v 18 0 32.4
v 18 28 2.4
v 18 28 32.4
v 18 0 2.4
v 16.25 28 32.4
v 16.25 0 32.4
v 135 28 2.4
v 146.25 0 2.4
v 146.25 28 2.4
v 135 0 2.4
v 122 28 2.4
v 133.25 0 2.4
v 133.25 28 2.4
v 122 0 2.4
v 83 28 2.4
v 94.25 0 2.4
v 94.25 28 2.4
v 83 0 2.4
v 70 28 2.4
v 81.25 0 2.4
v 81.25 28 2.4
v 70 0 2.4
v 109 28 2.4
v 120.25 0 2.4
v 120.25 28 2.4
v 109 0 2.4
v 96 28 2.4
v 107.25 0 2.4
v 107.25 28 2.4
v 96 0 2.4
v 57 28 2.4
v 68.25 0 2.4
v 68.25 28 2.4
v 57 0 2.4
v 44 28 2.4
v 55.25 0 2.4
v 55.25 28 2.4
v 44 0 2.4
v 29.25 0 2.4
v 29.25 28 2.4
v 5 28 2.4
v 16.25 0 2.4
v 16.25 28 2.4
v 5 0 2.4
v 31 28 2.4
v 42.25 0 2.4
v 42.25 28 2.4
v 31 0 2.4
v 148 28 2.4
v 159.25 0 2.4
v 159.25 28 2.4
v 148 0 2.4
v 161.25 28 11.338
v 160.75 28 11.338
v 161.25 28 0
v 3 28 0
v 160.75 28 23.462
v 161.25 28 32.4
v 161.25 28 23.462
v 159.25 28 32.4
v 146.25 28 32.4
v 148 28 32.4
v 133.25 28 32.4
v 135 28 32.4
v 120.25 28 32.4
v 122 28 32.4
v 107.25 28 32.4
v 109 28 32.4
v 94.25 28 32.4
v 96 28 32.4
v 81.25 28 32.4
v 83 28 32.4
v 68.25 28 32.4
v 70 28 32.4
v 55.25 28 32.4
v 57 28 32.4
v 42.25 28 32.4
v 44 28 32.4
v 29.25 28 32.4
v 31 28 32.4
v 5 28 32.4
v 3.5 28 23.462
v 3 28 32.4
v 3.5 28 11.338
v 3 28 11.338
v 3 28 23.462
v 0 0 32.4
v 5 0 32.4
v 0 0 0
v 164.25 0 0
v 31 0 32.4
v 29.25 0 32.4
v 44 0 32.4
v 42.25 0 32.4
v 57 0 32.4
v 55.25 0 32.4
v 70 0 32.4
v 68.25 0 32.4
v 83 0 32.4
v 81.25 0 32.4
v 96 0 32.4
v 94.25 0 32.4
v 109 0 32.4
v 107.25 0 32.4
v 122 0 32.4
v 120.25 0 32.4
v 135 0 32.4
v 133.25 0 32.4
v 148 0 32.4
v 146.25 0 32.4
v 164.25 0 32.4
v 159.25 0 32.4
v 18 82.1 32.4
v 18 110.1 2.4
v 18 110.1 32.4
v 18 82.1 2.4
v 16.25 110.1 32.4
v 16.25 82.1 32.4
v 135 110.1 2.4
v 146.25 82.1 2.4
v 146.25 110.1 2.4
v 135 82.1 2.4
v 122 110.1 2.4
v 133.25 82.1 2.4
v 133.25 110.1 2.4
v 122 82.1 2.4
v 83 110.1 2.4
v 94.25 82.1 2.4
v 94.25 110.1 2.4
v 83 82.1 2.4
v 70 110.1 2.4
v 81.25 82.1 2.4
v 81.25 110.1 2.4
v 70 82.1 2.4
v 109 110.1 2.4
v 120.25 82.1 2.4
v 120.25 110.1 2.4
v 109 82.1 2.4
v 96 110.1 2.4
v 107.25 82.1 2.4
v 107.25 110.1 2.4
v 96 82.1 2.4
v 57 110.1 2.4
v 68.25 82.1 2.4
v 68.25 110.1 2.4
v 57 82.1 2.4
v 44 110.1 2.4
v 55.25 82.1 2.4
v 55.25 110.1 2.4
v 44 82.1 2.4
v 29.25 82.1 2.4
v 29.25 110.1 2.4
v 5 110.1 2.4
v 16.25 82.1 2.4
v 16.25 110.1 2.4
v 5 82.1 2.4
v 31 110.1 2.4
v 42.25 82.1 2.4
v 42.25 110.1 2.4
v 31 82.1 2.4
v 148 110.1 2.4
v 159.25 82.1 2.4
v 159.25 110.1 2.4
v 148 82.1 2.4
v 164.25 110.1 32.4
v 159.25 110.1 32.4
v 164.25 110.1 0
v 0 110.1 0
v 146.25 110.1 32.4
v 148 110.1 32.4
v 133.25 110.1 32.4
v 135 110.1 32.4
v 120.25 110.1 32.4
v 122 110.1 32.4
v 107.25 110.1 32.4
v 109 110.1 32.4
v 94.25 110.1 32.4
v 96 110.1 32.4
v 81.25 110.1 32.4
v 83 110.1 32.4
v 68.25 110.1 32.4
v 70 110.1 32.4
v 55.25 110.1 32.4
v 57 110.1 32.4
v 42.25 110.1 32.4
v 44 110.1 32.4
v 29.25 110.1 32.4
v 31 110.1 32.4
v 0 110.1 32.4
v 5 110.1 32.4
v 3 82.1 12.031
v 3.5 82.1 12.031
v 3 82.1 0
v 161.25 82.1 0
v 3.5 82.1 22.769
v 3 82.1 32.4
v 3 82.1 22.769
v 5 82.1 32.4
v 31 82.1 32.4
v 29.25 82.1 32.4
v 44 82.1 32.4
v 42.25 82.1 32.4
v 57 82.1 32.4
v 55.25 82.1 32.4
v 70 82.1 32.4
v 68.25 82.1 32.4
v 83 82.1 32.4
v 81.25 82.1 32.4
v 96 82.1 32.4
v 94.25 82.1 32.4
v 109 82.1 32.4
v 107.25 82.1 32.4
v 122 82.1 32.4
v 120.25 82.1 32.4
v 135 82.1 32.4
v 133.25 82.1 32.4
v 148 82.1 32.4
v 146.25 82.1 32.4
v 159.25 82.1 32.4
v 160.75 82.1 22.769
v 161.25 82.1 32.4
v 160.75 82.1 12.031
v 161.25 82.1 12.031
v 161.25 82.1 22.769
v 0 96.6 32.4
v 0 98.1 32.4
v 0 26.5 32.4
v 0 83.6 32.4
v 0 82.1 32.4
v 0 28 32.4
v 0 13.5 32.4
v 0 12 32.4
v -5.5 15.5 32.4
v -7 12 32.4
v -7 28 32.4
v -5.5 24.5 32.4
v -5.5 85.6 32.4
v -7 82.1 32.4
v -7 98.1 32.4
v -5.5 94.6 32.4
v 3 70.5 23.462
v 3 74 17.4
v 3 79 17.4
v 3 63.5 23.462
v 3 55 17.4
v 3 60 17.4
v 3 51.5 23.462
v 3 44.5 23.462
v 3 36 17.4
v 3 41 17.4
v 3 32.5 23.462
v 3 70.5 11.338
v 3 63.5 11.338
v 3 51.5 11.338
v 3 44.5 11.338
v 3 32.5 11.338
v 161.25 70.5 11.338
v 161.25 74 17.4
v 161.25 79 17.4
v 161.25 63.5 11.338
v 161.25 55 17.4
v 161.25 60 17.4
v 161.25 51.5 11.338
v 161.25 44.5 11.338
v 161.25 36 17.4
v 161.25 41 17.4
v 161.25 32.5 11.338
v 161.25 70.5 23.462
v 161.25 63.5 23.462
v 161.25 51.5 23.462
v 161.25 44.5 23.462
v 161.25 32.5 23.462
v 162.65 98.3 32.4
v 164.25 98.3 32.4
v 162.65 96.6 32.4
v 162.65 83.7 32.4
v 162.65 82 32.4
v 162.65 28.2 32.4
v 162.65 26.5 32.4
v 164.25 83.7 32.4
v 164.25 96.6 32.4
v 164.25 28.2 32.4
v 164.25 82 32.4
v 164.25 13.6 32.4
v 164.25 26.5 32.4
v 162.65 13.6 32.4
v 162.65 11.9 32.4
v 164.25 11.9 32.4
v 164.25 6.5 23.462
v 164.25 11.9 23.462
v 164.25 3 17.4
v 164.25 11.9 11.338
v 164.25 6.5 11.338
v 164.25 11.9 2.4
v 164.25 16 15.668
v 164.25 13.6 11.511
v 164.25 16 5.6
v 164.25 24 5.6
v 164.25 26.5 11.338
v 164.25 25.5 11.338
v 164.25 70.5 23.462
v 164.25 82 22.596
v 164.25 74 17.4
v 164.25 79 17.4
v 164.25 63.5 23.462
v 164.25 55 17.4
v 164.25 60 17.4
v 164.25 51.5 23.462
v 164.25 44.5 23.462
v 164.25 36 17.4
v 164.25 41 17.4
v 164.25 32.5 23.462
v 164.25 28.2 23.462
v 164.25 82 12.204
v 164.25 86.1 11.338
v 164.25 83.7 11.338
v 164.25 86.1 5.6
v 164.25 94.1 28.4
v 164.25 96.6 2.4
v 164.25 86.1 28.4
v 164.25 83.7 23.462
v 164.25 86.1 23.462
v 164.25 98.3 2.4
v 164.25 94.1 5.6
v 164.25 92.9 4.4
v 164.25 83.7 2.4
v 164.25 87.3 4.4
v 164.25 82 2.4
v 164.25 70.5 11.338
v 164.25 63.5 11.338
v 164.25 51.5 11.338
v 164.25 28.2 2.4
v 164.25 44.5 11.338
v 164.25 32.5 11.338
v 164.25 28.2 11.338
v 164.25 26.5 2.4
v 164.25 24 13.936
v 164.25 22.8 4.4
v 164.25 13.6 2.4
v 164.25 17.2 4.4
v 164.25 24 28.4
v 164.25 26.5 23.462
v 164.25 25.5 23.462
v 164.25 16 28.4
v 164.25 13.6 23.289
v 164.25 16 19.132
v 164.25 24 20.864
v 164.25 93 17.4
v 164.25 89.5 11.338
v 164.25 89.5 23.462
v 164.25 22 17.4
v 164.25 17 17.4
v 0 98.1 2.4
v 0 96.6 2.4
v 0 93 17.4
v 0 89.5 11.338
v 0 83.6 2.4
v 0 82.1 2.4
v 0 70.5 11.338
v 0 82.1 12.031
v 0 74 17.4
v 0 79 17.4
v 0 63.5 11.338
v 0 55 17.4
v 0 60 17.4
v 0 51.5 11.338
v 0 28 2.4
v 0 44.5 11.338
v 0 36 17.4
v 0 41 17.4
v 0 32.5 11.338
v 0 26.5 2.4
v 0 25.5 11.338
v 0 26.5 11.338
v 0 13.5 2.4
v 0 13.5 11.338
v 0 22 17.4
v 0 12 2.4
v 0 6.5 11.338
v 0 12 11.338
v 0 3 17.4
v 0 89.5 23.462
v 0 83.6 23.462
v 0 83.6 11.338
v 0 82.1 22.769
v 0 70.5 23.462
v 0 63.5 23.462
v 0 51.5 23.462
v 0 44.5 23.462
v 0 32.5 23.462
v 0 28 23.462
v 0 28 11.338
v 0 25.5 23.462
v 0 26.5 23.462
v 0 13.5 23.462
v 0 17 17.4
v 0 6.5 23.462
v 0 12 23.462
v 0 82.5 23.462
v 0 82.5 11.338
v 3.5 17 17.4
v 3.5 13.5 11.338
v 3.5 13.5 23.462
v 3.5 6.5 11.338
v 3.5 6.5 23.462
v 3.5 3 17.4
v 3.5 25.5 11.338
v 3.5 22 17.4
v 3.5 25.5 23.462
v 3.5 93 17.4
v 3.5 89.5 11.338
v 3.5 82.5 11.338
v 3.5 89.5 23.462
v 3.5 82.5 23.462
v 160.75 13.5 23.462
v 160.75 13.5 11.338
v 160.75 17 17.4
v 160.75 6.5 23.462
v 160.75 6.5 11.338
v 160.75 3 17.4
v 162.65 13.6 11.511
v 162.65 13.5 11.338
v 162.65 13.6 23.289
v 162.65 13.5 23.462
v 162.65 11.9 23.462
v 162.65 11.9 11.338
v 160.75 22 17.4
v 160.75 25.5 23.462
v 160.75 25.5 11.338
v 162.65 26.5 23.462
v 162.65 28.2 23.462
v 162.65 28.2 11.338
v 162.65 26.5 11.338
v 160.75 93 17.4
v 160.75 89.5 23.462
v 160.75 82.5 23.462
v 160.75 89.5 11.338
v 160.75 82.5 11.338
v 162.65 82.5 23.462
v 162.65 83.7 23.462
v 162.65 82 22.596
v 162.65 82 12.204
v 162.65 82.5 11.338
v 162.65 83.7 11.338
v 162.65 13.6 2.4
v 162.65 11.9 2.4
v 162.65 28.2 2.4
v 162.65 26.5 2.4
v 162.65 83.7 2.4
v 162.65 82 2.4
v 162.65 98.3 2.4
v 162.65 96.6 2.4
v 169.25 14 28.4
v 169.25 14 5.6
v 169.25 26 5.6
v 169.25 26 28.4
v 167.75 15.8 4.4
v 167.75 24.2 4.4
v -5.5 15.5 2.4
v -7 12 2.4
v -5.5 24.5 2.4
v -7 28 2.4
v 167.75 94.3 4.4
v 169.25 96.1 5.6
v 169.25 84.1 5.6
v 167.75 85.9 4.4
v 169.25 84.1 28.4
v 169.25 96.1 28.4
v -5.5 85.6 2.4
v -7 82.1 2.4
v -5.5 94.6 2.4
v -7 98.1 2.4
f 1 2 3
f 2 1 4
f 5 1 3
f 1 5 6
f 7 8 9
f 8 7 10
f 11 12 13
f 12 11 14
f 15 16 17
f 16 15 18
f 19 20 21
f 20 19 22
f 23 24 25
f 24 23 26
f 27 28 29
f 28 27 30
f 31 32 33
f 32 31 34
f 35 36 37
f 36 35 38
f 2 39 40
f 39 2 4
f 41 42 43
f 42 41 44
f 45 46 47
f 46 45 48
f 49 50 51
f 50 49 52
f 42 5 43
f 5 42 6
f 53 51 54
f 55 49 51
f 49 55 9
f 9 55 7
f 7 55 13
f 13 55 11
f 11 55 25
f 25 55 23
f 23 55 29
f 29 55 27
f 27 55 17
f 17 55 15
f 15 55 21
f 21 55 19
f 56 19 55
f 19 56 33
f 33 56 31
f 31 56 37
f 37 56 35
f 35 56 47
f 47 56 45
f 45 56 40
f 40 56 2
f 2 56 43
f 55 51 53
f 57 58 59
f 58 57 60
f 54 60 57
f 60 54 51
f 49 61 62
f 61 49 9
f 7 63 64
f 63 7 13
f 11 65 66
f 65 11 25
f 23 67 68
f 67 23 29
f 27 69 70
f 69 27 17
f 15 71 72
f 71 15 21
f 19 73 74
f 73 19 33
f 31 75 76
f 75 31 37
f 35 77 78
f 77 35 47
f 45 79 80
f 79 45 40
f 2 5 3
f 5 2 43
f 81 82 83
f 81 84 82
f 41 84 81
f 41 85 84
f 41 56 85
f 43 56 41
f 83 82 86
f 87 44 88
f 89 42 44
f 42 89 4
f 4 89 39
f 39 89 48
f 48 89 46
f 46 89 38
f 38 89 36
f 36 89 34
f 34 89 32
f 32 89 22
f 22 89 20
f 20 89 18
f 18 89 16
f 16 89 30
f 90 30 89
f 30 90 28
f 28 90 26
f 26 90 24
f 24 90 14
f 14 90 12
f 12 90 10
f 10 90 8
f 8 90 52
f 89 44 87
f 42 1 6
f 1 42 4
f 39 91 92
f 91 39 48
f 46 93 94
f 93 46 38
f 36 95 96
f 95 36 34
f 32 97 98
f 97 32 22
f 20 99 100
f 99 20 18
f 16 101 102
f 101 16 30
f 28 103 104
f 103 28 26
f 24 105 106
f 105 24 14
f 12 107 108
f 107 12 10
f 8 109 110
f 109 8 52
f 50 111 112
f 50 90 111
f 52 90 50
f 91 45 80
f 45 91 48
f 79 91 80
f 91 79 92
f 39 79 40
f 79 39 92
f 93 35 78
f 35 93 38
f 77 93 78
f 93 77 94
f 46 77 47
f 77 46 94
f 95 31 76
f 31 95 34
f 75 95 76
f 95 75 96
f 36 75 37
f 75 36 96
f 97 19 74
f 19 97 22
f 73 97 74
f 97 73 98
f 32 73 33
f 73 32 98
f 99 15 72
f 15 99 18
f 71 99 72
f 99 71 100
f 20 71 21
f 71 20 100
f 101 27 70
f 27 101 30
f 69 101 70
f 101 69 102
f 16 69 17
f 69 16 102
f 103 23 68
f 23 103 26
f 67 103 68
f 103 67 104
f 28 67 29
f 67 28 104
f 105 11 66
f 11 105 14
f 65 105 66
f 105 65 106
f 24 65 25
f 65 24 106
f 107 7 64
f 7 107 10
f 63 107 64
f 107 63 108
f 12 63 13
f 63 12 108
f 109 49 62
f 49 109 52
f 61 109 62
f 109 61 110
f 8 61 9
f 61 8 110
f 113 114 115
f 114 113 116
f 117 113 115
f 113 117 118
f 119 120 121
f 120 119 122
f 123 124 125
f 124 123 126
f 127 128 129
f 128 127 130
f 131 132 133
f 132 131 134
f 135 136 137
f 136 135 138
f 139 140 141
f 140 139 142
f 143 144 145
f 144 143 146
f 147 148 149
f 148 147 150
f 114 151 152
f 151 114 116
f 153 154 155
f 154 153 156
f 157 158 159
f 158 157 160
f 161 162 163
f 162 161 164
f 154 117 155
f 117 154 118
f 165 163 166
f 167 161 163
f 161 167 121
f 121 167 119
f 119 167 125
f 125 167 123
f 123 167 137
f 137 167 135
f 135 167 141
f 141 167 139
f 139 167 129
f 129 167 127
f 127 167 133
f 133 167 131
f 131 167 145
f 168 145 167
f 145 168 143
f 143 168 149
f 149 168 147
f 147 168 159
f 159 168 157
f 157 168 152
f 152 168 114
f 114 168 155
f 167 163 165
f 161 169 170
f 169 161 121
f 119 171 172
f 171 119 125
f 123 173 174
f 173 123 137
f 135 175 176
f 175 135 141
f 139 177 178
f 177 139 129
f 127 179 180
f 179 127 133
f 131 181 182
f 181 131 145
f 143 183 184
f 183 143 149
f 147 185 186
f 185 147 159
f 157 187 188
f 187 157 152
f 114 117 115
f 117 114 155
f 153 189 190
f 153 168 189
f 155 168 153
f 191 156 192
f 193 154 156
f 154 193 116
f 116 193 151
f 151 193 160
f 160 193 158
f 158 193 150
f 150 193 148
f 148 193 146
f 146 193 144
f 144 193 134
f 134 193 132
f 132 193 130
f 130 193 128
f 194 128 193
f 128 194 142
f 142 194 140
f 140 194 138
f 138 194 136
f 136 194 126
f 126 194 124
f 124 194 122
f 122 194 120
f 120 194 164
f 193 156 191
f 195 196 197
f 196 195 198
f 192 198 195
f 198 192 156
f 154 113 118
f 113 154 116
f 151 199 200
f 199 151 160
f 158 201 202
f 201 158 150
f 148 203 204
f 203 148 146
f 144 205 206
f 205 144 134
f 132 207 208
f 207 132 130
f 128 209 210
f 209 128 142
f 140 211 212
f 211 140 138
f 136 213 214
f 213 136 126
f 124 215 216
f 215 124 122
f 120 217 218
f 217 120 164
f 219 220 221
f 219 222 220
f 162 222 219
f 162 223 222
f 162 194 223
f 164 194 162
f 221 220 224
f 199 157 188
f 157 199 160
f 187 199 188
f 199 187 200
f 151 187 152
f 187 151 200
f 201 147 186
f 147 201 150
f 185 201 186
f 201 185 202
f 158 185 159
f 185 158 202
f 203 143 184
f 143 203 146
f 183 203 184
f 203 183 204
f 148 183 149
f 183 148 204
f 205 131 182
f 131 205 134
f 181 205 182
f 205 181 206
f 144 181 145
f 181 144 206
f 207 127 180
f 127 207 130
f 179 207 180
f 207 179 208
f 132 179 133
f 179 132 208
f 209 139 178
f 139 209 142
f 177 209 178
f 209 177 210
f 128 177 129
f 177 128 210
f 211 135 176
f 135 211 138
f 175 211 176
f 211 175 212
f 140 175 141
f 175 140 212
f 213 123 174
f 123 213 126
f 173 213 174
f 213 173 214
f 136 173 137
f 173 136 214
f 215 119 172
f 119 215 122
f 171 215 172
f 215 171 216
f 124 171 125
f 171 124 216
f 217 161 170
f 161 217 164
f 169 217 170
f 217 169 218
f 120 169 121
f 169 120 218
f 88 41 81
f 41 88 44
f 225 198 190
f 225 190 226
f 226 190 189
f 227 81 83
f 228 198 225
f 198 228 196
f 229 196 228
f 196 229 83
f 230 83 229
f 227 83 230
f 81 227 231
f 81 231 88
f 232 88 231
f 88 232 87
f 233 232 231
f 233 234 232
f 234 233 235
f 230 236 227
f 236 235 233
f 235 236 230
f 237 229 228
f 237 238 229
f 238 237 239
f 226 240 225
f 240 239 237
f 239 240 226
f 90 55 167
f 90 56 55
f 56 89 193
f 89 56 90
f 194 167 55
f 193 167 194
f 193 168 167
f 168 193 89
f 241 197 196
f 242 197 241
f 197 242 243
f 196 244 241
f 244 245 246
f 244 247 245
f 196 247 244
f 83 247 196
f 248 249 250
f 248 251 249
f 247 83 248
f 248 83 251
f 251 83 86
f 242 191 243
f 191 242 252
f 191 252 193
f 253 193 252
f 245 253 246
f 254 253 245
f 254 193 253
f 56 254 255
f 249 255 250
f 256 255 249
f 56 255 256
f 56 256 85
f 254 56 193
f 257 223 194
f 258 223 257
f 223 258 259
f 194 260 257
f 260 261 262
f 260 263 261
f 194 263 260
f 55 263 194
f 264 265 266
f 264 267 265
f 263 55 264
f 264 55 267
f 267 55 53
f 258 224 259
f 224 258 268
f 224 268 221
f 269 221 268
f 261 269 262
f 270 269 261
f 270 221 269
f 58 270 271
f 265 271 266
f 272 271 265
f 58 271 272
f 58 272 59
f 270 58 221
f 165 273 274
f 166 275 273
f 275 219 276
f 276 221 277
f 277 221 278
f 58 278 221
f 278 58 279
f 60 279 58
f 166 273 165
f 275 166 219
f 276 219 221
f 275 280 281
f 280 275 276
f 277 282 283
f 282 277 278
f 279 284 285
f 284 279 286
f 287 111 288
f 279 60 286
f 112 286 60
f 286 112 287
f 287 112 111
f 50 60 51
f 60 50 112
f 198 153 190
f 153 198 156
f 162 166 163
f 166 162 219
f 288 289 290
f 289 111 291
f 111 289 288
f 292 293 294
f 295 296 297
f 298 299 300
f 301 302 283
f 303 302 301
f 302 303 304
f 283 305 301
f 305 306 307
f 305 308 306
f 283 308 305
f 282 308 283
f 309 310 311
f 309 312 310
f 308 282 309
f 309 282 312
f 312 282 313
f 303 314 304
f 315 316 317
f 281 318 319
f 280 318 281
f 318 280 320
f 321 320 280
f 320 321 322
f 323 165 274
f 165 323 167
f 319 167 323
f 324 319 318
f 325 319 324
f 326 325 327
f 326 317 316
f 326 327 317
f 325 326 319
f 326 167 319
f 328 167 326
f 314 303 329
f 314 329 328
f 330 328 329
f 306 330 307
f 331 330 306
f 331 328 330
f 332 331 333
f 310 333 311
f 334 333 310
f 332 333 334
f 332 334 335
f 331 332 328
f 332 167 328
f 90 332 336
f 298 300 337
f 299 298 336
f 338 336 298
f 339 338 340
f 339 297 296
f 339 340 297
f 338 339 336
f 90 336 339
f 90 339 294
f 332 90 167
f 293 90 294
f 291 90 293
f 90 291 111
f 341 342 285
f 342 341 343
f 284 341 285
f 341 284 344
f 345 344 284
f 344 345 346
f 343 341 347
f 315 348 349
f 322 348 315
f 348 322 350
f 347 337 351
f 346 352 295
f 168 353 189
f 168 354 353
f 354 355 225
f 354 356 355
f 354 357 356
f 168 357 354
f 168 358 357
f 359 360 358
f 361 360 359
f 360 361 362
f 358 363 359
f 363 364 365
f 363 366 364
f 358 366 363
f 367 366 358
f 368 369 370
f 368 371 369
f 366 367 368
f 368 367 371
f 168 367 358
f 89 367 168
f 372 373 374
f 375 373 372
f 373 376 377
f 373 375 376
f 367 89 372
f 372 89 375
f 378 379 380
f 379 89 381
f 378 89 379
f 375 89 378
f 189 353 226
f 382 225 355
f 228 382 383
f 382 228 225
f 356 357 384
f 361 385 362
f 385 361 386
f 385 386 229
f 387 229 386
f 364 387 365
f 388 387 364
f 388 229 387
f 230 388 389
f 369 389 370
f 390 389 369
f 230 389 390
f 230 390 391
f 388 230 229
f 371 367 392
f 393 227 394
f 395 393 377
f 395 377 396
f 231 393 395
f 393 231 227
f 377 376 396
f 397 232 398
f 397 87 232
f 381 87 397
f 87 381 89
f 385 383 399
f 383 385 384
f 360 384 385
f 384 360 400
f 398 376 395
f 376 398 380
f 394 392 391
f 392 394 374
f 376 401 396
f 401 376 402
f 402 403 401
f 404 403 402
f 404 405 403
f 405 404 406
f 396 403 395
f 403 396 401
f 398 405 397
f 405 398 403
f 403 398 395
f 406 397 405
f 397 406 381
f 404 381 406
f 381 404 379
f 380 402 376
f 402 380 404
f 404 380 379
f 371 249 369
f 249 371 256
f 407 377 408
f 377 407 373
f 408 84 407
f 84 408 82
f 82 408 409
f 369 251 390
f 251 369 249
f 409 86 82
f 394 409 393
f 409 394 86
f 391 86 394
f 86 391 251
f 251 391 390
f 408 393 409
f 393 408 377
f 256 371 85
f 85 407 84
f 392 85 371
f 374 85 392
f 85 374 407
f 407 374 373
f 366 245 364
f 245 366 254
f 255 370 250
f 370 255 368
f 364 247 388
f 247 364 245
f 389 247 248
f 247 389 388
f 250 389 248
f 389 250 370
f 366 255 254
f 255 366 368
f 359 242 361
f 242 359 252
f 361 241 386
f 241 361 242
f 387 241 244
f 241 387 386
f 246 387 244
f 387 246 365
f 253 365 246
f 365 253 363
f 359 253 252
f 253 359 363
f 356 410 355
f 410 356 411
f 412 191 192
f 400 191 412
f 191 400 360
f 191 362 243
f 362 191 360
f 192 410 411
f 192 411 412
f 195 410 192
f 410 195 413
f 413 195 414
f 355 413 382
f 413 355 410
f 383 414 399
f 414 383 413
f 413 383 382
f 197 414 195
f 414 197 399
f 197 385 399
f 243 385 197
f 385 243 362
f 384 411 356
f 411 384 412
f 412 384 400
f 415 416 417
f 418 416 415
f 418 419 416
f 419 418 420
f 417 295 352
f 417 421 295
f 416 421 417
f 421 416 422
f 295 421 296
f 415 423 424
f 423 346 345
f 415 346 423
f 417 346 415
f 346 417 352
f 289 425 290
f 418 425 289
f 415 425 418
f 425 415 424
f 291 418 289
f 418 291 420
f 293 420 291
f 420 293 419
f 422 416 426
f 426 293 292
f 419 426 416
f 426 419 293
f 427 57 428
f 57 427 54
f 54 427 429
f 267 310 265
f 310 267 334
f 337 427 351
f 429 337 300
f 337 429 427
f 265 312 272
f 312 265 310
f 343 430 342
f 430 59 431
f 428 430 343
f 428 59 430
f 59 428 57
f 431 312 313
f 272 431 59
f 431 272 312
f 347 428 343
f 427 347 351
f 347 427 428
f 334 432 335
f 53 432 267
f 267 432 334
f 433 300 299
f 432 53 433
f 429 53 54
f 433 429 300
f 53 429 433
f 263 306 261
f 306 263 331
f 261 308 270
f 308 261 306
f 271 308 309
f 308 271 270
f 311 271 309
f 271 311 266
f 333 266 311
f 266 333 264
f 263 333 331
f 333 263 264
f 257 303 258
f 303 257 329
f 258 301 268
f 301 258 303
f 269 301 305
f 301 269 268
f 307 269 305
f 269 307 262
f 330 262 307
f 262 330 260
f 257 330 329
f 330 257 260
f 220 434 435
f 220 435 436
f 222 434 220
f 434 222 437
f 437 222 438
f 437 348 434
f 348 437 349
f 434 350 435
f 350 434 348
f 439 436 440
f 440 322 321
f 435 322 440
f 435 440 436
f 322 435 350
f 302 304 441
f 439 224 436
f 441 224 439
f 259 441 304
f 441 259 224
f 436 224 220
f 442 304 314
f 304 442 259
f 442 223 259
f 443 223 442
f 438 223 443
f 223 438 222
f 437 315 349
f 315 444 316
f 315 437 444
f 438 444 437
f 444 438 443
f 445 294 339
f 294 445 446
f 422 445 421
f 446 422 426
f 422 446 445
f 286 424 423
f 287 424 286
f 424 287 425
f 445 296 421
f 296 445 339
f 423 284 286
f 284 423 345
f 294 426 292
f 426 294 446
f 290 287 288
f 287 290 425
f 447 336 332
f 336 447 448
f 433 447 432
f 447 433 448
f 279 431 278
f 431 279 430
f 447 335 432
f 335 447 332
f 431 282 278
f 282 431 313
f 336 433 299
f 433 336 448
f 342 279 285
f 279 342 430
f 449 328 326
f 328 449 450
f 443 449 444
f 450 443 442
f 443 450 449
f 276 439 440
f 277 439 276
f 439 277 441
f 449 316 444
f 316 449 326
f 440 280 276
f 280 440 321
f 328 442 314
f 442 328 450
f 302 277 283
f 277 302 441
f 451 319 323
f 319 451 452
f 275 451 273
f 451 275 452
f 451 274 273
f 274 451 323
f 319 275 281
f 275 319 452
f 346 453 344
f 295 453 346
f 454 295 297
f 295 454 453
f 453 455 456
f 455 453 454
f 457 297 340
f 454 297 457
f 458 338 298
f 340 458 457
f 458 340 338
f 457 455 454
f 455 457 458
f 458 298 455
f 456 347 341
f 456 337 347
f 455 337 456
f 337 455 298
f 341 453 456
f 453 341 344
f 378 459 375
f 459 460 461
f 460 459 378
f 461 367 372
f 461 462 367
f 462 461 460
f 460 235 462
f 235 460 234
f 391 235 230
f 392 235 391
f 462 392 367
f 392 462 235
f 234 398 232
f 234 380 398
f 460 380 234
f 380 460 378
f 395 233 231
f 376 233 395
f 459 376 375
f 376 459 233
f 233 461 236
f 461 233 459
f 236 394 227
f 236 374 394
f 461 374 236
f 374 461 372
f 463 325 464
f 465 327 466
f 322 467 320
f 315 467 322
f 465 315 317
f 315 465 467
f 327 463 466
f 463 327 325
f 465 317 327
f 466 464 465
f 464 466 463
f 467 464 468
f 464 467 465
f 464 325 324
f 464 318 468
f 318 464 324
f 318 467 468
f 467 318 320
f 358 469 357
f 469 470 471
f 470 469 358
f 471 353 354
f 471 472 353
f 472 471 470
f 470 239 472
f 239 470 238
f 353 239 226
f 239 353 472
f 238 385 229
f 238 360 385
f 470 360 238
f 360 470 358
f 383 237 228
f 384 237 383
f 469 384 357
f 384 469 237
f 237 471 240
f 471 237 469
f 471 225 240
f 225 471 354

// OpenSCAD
/*
  switch-case-organizer-01

  Organizador aberto para 12 caixas fisicas de jogos Nintendo Switch / Switch 2.
  O usuario apoia o organizador na prateleira, introduz cada caixa por cima em
  um dos 12 canais e retira pela lombada. Guias altas nas duas pontas seguram
  cada caixa contra inclinacao; o vao central deixa os dedos alcancarem as faces.

  Duas unidades identicas acoplam lado a lado: alinhe os dois pares de rabos-
  de-andorinha, mantenha as bases paralelas e baixe a unidade da direita por
  todo o curso vertical. Para separar, segure ambas as bases e levante uma
  unidade 28.0 mm; nao e necessario retirar as caixas dos canais.

  Interface reconstruida da malha diversos/switch_game_tray_12.3mf, que traz
  inequivocamente 12 canais de 11.25 mm, passo de 13 mm e apoio de 110.1 mm.
  Nenhuma dimensao de catalogo da caixa foi presumida.

  Export canonico (caminhos absolutos):
    flatpak run org.openscad.OpenSCAD -o /home/afonsolelis/Repos/3dmodels/diversos/switch-case-organizer-01/stl/switch-case-organizer-01.stl -D 'part="organizer"' /home/afonsolelis/Repos/3dmodels/diversos/switch-case-organizer-01/switch-case-organizer-01.scad
    flatpak run org.openscad.OpenSCAD -o /home/afonsolelis/Repos/3dmodels/diversos/switch-case-organizer-01/3mf/switch-case-organizer-01.3mf -D 'part="plate"' /home/afonsolelis/Repos/3dmodels/diversos/switch-case-organizer-01/switch-case-organizer-01.scad
*/

/* [Exportacao] */
part = "organizer"; // [organizer,plate,assembly] Parte, job ou verificacao de duas unidades.
$fn = 48;           // segmentos; acabamento dos recortes hexagonais.

/* [Caixas e capacidade] */
case_count = is_undef(case_count_override) ? 12 : case_count_override; // unidades; caixas por organizador.
case_slot_w = is_undef(case_slot_w_override) ? 11.25 : case_slot_w_override; // mm; vao real reconstruido da referencia.
slot_pitch = is_undef(slot_pitch_override) ? 13.0 : slot_pitch_override; // mm; distancia entre centros na referencia.
support_depth = is_undef(support_depth_override) ? 110.1 : support_depth_override; // mm; profundidade apoiada pela referencia.

/* [Estrutura] */
floor_t = 2.4;        // mm; piso das duas sapatas.
guide_h = 30.0;       // mm acima do piso; 15.6 mm a mais que as guias de 14.4 mm da referencia.
guide_depth = 28.0;   // mm em cada ponta; quatro pontos de apoio por caixa.
end_wall_t = 2.0;     // mm; paredes externas que fecham a primeira/ultima canaleta.
side_wall_t = 3.0;    // mm; longarinas laterais que unem as duas sapatas.
side_wall_h = 30.0;   // mm acima do piso; trava as extremidades laterais.
hex_r = 7.0;          // mm; raio dos hexagonos ponta-pra-cima nas longarinas.
hex_pitch = 19.0;     // mm; passo dos hexagonos ao longo da profundidade.

/* [Acoplamento modular] */
modular_connectors = is_undef(modular_connectors_override) ? true : modular_connectors_override; // liga/desliga; macho direito e femea esquerda.
slide_clearance = 0.5; // mm por lado; folga atual do repo para deslizamento longo.
connector_depth = 5.0; // mm; projecao lateral util do rabo-de-andorinha.
connector_neck_w = 8.0; // mm; largura do pescoco no eixo Y.
connector_head_w = 12.0; // mm; largura da cabeca no eixo Y.
connector_h = 24.0; // mm; comprimento vertical engatado.
connector_bottom = 4.4; // mm; afasta macho do pe de elefante e preserva o piso.
connector_receiver_wall = 1.5; // mm; parede minima ao redor da femea.
connector_y = [20, support_depth-20]; // mm; centros dos dois conectores, acessiveis nas pontas.

// Derivados
divider_t = slot_pitch - case_slot_w;
inner_w = case_count * case_slot_w + (case_count - 1) * divider_t;
interface_w = inner_w + 2 * end_wall_t;
overall_w = interface_w + 2 * side_wall_t;
overall_d = support_depth;
overall_h = floor_t + max(guide_h, side_wall_h);
center_access = support_depth - 2 * guide_depth;
hex_count = floor((support_depth - 2 * 10) / hex_pitch) + 1;
receiver_depth = connector_depth + slide_clearance + connector_receiver_wall;
receiver_w = connector_head_w + 2*slide_clearance + 2*connector_receiver_wall;
connector_top = connector_bottom + connector_h;
assembly_vertical_course = overall_h - connector_bottom;
modular_min_x = modular_connectors ? -receiver_depth : 0;
modular_max_x = modular_connectors ? overall_w + connector_depth : overall_w;
print_w = modular_max_x - modular_min_x;

assert(case_count >= 1, "case_count precisa ser >= 1");
assert(divider_t >= 1.2, "divisorias finas demais para FDM");
assert(center_access >= 35, "vao central pequeno demais para alcance dos dedos");
assert(connector_head_w > connector_neck_w, "rabo-de-andorinha precisa de retencao positiva");
assert(connector_bottom >= floor_t+1.2, "macho baixo demais: risco de pe de elefante");
assert(connector_top <= overall_h-2, "falta material acima/abaixo do conector");
assert(print_w <= 210 && overall_d <= 210 && overall_h <= 220,
       "organizador excede o limite confortavel da AD5X");

echo("DERIVADOS switch-case-organizer-01");
echo(case_count=case_count, case_slot_w=case_slot_w, divider_t=divider_t, slot_pitch=slot_pitch);
echo(interface_w=interface_w, extreme_channels_mm=[case_slot_w,case_slot_w]);
echo(overall_mm=[overall_w, overall_d, overall_h], guide_mm=[guide_h, guide_depth], center_access=center_access);
echo(modular_bbox_mm=[print_w,overall_d,overall_h], connector_clearance_per_side=slide_clearance,
     connector_engagement_h=connector_h, assembly_vertical_course=assembly_vertical_course,
     coupled_body_pitch=overall_w+connector_depth+slide_clearance);

module pointy_hex_2d(r) {
  polygon([for (a=[0:60:300]) [r*cos(a+30), r*sin(a+30)]]);
}

module side_hex_cuts(x0) {
  for (i=[0:hex_count-1]) {
    y = 10 + i * hex_pitch;
    translate([x0, y, floor_t + side_wall_h/2])
      rotate([0,90,0])
        linear_extrude(height=side_wall_t+1, center=true)
          pointy_hex_2d(hex_r);
  }
}

// Perfil XY do macho. A cabeca mais larga impede separacao lateral; a extrusao
// em Z permite montar por cima sem flexionar paredes e sem suporte.
module male_profile(extra=0) {
  polygon([[0,-connector_neck_w/2-extra],
           [connector_depth+extra,-connector_head_w/2-extra],
           [connector_depth+extra, connector_head_w/2+extra],
           [0, connector_neck_w/2+extra]]);
}

module male_connector(yc) {
  // Chanfro vertical de entrada de 1.2 mm: a ponta inferior menor centraliza
  // antes de os 24 mm de engate entrarem na femea.
  translate([overall_w, yc, connector_bottom])
    hull() {
      linear_extrude(height=0.01) scale([0.70,0.70]) male_profile();
      translate([0,0,1.2]) linear_extrude(height=0.01) male_profile();
    }
  translate([overall_w, yc, connector_bottom+1.2])
    linear_extrude(height=connector_h-1.2) male_profile();
}

module female_connector(yc) {
  difference() {
    translate([-receiver_depth, yc-receiver_w/2, floor_t])
      cube([receiver_depth, receiver_w, side_wall_h]);
    // Canal aberto em cima e embaixo: a prateleira alinha as bases e a abertura
    // inferior elimina colisao/pe de elefante no curso completo.
    translate([-connector_depth-slide_clearance, yc, floor_t-0.1])
      linear_extrude(height=overall_h-floor_t+1.2)
        male_profile(slide_clearance);
  }
}

module receiver_wall_pockets() {
  // O receptor vizinho avanca 1.5 mm sobre a longarina direita. Somente as
  // duas paredes laterais do receptor ocupariam material: estes rasgos as
  // recebem, mantendo o miolo da longarina para ancorar o macho.
  pocket_d = connector_receiver_wall + 0.1;
  cavity_half_w = connector_head_w/2 + slide_clearance;
  for (yc=connector_y, sy=[-1,1]) {
    y0 = sy < 0 ? yc-receiver_w/2-0.1 : yc+cavity_half_w;
    translate([overall_w-pocket_d, y0, floor_t])
      cube([pocket_d+0.1, connector_receiver_wall+0.2, side_wall_h+0.1]);
  }
}

module organizer_core() {
  difference() {
    union() {
      // Duas sapatas largas sustentam as caixas perto das duas extremidades.
      cube([overall_w, guide_depth, floor_t]);
      translate([0, overall_d-guide_depth, 0]) cube([overall_w, guide_depth, floor_t]);

      // Longarinas unem as sapatas e impedem a peca de abrir/torcer.
      cube([side_wall_t, overall_d, overall_h]);
      translate([overall_w-side_wall_t, 0, 0]) cube([side_wall_t, overall_d, overall_h]);

      // Paredes externas e divisorias em ambas as pontas: a caixa recebe
      // quatro superficies-guia, duas na frente e duas atras.
      for (y0=[0, overall_d-guide_depth]) {
        // Toda a interface com as caixas comeca depois da longarina esquerda.
        // As longarinas ficam integralmente FORA dos canais extremos.
        translate([side_wall_t, y0, 0]) cube([end_wall_t, guide_depth, floor_t+guide_h]);
        translate([side_wall_t+interface_w-end_wall_t, y0, 0]) cube([end_wall_t, guide_depth, floor_t+guide_h]);
        for (i=[1:case_count-1]) {
          x = side_wall_t + end_wall_t + i*case_slot_w + (i-1)*divider_t;
          translate([x, y0, floor_t]) cube([divider_t, guide_depth, guide_h]);
        }
      }
    }

    // Identidade visual do repo; faixa solida de 3 mm no piso e >=7 mm
    // nas pontas evita lascas junto das bordas.
    side_hex_cuts(side_wall_t/2);
    side_hex_cuts(overall_w-side_wall_t/2);
    if (modular_connectors) receiver_wall_pockets();
  }
}

module organizer() {
  union() {
    organizer_core();
    if (modular_connectors)
      for (yc=connector_y) {
        male_connector(yc);
        female_connector(yc);
      }
  }
}

module assembly() {
  organizer();
  translate([overall_w+connector_depth+slide_clearance,0,0]) organizer();
}

if (part == "organizer" || part == "plate") organizer();
else if (part == "assembly") assembly();
else assert(false, str("part desconhecida: ", part));
